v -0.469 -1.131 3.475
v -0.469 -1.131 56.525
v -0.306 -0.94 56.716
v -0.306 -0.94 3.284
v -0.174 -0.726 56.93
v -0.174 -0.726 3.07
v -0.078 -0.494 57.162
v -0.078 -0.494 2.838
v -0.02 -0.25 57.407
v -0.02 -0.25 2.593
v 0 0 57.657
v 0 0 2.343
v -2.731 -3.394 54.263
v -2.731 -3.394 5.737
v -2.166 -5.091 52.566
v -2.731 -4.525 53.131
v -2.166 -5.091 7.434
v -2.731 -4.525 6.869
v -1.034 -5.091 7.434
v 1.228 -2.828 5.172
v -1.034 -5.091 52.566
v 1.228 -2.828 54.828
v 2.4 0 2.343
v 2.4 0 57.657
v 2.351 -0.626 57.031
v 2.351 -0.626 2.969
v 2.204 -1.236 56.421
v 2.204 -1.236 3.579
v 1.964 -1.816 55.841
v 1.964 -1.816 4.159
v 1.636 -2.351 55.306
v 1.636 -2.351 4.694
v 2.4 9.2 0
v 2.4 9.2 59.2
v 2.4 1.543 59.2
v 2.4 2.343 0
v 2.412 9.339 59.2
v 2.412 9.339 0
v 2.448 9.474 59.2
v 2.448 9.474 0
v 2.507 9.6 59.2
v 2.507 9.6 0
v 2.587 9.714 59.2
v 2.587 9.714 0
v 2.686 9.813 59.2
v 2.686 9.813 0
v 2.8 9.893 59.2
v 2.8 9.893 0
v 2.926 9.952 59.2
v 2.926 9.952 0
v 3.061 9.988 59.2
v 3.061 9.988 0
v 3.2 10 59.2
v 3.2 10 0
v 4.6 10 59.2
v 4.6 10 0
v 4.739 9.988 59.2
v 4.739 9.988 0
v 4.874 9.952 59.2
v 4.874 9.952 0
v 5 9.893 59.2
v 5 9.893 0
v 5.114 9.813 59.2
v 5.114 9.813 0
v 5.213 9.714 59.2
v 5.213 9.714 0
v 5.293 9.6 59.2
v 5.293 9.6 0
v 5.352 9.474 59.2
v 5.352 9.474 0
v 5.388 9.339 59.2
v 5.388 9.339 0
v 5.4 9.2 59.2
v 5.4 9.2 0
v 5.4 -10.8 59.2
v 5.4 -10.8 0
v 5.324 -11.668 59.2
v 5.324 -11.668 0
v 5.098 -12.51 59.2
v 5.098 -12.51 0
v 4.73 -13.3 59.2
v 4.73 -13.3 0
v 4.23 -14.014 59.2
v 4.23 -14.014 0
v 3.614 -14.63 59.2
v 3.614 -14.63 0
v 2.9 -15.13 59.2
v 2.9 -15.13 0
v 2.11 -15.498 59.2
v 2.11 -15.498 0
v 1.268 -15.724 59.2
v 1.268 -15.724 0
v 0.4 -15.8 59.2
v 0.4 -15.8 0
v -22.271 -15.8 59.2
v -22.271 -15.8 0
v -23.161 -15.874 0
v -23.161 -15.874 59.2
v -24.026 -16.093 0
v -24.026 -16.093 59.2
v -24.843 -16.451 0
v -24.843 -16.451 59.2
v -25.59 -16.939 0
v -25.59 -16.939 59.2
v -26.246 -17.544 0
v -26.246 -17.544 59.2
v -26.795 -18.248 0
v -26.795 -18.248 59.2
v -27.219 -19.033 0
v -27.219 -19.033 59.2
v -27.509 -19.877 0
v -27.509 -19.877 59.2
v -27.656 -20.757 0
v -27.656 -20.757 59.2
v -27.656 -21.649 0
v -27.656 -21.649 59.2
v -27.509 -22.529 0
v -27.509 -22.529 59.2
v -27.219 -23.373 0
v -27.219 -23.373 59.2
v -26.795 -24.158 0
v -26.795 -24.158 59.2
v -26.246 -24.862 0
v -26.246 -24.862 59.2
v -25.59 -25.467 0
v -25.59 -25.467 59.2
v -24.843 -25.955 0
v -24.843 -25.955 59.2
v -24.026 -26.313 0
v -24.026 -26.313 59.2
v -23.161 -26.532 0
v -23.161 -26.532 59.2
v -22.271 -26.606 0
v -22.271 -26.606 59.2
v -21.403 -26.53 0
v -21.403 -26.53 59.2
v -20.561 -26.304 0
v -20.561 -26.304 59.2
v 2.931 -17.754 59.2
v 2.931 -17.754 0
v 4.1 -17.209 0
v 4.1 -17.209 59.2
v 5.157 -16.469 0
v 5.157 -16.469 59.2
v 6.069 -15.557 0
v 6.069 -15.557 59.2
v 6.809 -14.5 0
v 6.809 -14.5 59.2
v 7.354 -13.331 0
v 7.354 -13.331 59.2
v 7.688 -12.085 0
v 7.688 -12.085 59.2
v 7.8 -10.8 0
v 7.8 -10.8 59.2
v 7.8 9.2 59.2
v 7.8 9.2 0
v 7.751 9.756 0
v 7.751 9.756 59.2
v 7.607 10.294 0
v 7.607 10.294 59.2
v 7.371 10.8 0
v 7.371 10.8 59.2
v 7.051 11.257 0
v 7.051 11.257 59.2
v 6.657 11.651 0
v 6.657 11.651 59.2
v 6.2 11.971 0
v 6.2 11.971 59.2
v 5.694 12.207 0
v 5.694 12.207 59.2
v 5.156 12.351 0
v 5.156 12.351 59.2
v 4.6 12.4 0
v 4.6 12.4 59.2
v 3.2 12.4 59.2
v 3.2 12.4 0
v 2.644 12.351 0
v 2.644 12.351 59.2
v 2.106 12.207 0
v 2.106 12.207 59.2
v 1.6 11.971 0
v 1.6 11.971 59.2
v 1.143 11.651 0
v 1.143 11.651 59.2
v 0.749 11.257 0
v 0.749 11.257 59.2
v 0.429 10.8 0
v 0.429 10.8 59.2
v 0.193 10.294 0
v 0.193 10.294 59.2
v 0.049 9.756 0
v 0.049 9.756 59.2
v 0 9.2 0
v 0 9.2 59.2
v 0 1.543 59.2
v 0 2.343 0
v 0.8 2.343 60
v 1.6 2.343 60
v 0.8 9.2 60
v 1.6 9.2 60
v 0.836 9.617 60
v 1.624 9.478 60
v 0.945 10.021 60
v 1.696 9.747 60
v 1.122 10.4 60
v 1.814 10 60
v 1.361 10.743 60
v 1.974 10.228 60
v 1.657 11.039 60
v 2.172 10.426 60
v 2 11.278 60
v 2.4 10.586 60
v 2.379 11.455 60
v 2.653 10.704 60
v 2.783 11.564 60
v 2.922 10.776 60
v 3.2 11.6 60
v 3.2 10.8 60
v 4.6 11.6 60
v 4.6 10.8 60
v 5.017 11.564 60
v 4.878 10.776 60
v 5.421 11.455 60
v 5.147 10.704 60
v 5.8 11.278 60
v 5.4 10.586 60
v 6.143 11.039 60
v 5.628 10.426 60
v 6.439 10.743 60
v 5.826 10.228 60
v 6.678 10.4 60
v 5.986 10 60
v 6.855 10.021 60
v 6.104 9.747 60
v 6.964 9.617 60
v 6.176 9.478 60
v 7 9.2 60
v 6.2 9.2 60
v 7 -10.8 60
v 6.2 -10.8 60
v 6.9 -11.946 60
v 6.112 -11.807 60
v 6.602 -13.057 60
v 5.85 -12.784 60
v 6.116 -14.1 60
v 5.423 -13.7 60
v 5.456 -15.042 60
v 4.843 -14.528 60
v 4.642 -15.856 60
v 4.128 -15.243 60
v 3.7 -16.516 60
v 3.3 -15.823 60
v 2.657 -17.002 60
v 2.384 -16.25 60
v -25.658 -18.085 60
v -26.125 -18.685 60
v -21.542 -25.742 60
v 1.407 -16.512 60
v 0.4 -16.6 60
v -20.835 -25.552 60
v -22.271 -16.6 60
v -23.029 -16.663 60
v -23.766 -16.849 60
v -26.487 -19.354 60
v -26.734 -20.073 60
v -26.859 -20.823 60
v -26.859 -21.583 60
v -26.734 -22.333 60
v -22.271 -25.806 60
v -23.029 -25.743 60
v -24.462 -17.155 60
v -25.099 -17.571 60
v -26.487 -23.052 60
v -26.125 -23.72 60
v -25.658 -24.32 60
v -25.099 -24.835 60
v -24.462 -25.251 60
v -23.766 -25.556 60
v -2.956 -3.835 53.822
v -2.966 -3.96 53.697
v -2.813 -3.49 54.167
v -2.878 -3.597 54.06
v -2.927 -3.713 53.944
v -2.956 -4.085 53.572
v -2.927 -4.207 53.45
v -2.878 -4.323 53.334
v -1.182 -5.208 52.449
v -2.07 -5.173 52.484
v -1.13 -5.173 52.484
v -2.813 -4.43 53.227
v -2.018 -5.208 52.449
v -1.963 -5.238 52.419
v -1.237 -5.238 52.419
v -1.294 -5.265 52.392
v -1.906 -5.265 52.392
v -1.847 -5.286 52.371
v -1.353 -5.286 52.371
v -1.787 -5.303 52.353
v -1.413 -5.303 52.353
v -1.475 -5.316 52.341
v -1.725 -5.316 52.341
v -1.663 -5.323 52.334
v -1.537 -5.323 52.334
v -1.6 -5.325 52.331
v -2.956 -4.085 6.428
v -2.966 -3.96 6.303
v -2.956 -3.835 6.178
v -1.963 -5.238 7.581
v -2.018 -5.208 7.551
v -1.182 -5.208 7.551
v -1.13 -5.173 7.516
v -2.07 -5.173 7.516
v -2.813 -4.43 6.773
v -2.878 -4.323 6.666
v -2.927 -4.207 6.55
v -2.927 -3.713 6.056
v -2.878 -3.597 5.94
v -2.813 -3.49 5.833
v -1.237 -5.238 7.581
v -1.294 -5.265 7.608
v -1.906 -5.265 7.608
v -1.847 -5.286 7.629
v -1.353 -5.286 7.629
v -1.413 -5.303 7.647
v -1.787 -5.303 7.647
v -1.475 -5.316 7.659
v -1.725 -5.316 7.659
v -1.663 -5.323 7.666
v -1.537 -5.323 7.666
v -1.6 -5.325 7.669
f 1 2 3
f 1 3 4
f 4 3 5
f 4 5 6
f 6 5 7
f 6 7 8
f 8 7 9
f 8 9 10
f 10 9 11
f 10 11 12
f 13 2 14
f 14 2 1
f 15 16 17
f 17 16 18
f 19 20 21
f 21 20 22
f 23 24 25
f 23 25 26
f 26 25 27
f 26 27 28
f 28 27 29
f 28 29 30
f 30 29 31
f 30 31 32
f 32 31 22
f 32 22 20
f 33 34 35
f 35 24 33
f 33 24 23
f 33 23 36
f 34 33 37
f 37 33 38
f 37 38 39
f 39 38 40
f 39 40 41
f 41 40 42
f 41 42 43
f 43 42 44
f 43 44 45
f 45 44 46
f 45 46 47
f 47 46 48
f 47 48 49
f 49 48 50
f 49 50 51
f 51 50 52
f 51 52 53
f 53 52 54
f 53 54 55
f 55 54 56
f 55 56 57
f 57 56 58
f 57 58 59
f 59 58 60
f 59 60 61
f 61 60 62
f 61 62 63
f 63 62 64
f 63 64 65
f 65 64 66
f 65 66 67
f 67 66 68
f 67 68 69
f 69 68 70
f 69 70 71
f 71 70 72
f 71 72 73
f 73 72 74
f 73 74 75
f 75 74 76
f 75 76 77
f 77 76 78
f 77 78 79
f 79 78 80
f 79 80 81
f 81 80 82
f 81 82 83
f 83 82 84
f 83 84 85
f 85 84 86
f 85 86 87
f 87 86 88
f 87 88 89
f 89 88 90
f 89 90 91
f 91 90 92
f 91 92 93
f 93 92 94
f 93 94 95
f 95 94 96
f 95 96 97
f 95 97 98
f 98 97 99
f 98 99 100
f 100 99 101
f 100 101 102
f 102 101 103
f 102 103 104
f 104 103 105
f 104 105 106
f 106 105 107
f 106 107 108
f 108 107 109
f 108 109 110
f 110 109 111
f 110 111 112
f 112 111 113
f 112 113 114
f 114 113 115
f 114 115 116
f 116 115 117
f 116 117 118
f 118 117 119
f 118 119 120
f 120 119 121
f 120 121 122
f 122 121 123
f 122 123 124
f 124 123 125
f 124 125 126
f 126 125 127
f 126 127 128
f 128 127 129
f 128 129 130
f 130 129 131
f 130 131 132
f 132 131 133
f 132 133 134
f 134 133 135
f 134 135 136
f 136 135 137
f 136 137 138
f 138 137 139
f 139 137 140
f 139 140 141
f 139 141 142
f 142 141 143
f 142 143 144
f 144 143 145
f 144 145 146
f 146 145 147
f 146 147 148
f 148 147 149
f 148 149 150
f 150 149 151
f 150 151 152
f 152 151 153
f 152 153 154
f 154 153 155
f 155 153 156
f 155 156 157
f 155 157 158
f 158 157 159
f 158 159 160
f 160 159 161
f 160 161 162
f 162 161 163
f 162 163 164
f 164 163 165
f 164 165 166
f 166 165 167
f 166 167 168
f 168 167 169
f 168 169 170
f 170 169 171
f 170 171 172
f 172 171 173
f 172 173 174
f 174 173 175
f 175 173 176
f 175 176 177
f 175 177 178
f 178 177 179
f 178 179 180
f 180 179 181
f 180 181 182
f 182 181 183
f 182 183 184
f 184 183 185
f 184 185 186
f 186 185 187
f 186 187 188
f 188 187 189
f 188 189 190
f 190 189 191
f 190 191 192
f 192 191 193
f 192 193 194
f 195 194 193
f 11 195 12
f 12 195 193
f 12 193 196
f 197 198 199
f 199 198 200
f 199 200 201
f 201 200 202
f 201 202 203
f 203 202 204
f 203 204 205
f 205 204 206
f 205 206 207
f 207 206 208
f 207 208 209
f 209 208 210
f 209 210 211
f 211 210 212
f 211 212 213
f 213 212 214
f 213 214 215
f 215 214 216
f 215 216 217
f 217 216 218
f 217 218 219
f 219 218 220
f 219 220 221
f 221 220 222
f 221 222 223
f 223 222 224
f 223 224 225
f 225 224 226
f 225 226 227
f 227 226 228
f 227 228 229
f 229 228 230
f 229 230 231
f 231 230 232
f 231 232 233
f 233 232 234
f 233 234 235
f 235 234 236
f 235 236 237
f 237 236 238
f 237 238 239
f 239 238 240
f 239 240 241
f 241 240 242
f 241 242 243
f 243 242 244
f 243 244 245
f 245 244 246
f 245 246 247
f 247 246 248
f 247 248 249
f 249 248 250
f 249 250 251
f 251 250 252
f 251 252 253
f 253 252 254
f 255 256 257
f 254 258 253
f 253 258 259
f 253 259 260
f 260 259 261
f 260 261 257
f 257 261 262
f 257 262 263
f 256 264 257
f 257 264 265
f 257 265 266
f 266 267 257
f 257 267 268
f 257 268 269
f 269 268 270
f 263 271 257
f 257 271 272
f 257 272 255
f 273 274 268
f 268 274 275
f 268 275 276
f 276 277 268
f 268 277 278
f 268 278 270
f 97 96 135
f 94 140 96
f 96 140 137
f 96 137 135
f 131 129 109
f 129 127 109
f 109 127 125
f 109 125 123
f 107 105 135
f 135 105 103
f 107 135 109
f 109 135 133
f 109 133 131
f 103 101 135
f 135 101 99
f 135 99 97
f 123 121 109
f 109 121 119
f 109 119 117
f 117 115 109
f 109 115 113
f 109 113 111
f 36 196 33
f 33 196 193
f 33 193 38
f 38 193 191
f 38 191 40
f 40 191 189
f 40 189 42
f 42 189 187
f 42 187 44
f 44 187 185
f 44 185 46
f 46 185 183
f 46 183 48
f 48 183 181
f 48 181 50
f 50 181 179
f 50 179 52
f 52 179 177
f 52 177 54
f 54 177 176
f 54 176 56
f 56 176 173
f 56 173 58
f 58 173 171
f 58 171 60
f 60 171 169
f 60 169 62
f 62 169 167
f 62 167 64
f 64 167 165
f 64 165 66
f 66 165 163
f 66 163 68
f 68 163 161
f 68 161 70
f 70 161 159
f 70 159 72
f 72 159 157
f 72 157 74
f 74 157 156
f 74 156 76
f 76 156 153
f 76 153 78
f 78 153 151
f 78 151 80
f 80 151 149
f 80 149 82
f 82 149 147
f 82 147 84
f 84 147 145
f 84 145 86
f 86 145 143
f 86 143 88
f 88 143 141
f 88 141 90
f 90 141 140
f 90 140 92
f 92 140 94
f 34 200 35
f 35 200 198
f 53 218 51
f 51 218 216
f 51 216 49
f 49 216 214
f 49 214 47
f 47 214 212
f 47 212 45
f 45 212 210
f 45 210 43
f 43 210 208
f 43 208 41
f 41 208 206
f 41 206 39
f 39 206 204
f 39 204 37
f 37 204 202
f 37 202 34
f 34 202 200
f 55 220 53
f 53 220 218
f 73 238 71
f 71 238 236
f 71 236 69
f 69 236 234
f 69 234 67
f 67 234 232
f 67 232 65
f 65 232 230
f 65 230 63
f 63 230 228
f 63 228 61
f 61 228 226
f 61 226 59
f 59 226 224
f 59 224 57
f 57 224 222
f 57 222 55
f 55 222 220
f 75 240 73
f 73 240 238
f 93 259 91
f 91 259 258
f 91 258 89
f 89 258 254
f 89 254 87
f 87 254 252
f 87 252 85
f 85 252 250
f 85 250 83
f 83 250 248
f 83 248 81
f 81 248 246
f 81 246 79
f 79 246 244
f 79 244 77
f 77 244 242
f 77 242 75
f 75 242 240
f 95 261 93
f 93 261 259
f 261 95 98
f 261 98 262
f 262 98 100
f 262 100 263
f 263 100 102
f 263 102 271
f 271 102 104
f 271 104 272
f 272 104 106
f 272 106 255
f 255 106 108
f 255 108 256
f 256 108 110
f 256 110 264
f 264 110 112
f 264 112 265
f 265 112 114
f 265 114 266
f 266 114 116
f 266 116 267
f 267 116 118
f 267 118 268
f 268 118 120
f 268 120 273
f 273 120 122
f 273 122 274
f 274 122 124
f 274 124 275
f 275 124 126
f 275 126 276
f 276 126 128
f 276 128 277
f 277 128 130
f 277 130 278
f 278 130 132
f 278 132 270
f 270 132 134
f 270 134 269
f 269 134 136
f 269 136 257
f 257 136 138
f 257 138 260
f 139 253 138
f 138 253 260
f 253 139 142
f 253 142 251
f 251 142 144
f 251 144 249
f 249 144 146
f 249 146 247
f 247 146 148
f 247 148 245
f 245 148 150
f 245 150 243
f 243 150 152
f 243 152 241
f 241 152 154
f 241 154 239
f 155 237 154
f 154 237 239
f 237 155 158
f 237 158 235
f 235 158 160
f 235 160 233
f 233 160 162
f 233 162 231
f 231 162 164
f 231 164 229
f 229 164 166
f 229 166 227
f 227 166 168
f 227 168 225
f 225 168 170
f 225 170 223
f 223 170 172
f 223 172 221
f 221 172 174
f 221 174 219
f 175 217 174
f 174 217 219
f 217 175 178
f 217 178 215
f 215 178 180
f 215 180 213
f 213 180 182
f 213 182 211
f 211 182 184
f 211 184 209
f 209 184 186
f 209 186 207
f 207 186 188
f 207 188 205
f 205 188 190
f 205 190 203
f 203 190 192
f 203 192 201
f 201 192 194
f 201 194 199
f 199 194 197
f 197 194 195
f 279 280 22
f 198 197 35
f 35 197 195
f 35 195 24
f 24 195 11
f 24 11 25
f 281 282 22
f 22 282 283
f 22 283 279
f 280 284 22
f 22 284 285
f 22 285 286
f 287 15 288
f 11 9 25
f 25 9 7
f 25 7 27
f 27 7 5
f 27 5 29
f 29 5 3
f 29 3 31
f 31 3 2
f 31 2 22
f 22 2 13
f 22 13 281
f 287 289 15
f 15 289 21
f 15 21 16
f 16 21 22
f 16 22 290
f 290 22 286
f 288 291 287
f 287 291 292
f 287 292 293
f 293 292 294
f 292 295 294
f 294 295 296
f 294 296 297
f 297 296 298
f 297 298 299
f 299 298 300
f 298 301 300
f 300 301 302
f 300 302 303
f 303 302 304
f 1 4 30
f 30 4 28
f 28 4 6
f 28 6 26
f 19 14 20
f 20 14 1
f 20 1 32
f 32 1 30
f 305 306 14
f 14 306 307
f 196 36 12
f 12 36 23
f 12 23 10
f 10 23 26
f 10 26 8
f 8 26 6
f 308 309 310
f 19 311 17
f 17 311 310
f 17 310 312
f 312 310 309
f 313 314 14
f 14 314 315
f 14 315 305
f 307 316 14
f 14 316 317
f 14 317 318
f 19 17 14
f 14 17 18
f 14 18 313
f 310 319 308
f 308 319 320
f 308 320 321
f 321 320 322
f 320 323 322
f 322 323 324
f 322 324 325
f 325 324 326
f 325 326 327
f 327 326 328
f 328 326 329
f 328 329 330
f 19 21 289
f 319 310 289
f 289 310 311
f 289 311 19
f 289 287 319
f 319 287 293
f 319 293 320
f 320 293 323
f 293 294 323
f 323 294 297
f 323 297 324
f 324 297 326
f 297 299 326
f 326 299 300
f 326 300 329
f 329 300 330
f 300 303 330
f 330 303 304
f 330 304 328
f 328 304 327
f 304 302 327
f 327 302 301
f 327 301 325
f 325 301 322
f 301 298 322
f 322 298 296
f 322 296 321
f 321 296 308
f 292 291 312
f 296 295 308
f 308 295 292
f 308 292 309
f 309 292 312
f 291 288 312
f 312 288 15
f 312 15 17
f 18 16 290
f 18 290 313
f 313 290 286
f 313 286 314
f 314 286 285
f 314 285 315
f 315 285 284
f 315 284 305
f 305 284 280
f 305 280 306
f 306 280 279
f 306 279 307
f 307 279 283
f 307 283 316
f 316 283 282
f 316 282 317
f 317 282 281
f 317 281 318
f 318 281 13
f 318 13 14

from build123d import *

# Parameters (mm, degrees)
BOSS_EXTRUDE1_DEPTH = 60
CHAMFER2_SIZE       = 0.8
CUT_EXTRUDE1_DEPTH  = 73.196490998
FILLET2_R           = 0.8


with BuildPart() as part:
    # Sketch1 → Boss-Extrude1 (new body)
    with BuildSketch(Plane.XY):
        with BuildLine():
            Line((2.4, 0), (2.4, 9.2))
            ThreePointArc((2.4, 9.2), (2.634314575, 9.765685425), (3.2, 10))
            Line((3.2, 10), (4.6, 10))
            ThreePointArc((4.6, 10), (5.165685425, 9.765685425), (5.4, 9.2))
            Line((5.4, 9.2), (5.4, -10.8))
            ThreePointArc((5.4, -10.8), (3.935533906, -14.335533906), (0.4, -15.8))
            Line((0.4, -15.8), (-22.271467176, -15.8))
            ThreePointArc((-22.271467176, -15.8), (-27.674350112, -21.202882937), (-22.271467176, -26.605765873))
            ThreePointArc((-22.271467176, -26.605765873), (-21.403226287, -26.529804638), (-20.561366459, -26.304228977))
            Line((-20.561366459, -26.304228977), (2.930949061, -17.753725394))
            ThreePointArc((2.930949061, -17.753725394), (6.461725128, -15.044465629), (7.8, -10.8))
            Line((7.8, -10.8), (7.8, 9.2))
            ThreePointArc((7.8, 9.2), (6.8627417, 11.4627417), (4.6, 12.4))
            Line((4.6, 12.4), (3.2, 12.4))
            ThreePointArc((3.2, 12.4), (0.9372583, 11.4627417), (0, 9.2))
            Line((0, 9.2), (0, 0))
            ThreePointArc((0, 0), (-0.121792748, -0.612293492), (-0.46862915, -1.13137085))
            Line((-0.46862915, -1.13137085), (-3.297056275, -3.959797975))
            Line((-3.297056275, -3.959797975), (-1.6, -5.656854249))
            Line((-1.6, -5.656854249), (1.228427125, -2.828427125))
            ThreePointArc((1.228427125, -2.828427125), (2.09551813, -1.530733729), (2.4, 0))
        make_face()
    extrude(amount=BOSS_EXTRUDE1_DEPTH)

    # Chamfer2
    chamfer2_edges = [part.edges().sort_by_distance(p)[0] for p in [
        (-0.185786438, -4.242640687, 60),
        (2.09551813, -1.530733729, 60),
        (2.4, 4.6, 60),
        (2.634314575, 9.765685425, 60),
        (3.9, 10, 60),
        (5.165685425, 9.765685425, 60),
        (5.4, -0.8, 60),
        (3.935533906, -14.335533906, 60),
        (-10.935733588, -15.8, 60),
        (-0.121792748, -0.612293492, 60),
        (-27.674350112, -21.202882937, 60),
        (-21.403226287, -26.529804638, 60),
        (-8.815208699, -22.028977185, 60),
        (6.461725128, -15.044465629, 60),
        (7.8, -0.8, 60),
        (6.8627417, 11.4627417, 60),
        (3.9, 12.4, 60),
        (0.9372583, 11.4627417, 60),
        (0, 4.6, 60),
        (-1.882842712, -2.545584412, 60),
    ]]
    chamfer(chamfer2_edges, length=CHAMFER2_SIZE)

    # Sketch2 → Cut-Extrude1 (cut, through all)
    with BuildSketch(Plane(origin=(2.4, 0, 0), x_dir=(0, 0, -1), z_dir=(1, 0, 0))):
        Polygon((-60, 2.343145751), (-52, -5.656854249), (-60, -5.656854249), align=None)
        Polygon((0, 2.343145751), (-8, -5.656854249), (0, -5.656854249), align=None)
    extrude(amount=-CUT_EXTRUDE1_DEPTH, mode=Mode.SUBTRACT)

    # Fillet2
    fillet2_edges = [part.edges().sort_by_distance(p)[0] for p in [
        (-1.6, -5.656854249, 30),
        (-3.297056275, -3.959797975, 30),
    ]]
    fillet(fillet2_edges, radius=FILLET2_R)


solid = part.part
